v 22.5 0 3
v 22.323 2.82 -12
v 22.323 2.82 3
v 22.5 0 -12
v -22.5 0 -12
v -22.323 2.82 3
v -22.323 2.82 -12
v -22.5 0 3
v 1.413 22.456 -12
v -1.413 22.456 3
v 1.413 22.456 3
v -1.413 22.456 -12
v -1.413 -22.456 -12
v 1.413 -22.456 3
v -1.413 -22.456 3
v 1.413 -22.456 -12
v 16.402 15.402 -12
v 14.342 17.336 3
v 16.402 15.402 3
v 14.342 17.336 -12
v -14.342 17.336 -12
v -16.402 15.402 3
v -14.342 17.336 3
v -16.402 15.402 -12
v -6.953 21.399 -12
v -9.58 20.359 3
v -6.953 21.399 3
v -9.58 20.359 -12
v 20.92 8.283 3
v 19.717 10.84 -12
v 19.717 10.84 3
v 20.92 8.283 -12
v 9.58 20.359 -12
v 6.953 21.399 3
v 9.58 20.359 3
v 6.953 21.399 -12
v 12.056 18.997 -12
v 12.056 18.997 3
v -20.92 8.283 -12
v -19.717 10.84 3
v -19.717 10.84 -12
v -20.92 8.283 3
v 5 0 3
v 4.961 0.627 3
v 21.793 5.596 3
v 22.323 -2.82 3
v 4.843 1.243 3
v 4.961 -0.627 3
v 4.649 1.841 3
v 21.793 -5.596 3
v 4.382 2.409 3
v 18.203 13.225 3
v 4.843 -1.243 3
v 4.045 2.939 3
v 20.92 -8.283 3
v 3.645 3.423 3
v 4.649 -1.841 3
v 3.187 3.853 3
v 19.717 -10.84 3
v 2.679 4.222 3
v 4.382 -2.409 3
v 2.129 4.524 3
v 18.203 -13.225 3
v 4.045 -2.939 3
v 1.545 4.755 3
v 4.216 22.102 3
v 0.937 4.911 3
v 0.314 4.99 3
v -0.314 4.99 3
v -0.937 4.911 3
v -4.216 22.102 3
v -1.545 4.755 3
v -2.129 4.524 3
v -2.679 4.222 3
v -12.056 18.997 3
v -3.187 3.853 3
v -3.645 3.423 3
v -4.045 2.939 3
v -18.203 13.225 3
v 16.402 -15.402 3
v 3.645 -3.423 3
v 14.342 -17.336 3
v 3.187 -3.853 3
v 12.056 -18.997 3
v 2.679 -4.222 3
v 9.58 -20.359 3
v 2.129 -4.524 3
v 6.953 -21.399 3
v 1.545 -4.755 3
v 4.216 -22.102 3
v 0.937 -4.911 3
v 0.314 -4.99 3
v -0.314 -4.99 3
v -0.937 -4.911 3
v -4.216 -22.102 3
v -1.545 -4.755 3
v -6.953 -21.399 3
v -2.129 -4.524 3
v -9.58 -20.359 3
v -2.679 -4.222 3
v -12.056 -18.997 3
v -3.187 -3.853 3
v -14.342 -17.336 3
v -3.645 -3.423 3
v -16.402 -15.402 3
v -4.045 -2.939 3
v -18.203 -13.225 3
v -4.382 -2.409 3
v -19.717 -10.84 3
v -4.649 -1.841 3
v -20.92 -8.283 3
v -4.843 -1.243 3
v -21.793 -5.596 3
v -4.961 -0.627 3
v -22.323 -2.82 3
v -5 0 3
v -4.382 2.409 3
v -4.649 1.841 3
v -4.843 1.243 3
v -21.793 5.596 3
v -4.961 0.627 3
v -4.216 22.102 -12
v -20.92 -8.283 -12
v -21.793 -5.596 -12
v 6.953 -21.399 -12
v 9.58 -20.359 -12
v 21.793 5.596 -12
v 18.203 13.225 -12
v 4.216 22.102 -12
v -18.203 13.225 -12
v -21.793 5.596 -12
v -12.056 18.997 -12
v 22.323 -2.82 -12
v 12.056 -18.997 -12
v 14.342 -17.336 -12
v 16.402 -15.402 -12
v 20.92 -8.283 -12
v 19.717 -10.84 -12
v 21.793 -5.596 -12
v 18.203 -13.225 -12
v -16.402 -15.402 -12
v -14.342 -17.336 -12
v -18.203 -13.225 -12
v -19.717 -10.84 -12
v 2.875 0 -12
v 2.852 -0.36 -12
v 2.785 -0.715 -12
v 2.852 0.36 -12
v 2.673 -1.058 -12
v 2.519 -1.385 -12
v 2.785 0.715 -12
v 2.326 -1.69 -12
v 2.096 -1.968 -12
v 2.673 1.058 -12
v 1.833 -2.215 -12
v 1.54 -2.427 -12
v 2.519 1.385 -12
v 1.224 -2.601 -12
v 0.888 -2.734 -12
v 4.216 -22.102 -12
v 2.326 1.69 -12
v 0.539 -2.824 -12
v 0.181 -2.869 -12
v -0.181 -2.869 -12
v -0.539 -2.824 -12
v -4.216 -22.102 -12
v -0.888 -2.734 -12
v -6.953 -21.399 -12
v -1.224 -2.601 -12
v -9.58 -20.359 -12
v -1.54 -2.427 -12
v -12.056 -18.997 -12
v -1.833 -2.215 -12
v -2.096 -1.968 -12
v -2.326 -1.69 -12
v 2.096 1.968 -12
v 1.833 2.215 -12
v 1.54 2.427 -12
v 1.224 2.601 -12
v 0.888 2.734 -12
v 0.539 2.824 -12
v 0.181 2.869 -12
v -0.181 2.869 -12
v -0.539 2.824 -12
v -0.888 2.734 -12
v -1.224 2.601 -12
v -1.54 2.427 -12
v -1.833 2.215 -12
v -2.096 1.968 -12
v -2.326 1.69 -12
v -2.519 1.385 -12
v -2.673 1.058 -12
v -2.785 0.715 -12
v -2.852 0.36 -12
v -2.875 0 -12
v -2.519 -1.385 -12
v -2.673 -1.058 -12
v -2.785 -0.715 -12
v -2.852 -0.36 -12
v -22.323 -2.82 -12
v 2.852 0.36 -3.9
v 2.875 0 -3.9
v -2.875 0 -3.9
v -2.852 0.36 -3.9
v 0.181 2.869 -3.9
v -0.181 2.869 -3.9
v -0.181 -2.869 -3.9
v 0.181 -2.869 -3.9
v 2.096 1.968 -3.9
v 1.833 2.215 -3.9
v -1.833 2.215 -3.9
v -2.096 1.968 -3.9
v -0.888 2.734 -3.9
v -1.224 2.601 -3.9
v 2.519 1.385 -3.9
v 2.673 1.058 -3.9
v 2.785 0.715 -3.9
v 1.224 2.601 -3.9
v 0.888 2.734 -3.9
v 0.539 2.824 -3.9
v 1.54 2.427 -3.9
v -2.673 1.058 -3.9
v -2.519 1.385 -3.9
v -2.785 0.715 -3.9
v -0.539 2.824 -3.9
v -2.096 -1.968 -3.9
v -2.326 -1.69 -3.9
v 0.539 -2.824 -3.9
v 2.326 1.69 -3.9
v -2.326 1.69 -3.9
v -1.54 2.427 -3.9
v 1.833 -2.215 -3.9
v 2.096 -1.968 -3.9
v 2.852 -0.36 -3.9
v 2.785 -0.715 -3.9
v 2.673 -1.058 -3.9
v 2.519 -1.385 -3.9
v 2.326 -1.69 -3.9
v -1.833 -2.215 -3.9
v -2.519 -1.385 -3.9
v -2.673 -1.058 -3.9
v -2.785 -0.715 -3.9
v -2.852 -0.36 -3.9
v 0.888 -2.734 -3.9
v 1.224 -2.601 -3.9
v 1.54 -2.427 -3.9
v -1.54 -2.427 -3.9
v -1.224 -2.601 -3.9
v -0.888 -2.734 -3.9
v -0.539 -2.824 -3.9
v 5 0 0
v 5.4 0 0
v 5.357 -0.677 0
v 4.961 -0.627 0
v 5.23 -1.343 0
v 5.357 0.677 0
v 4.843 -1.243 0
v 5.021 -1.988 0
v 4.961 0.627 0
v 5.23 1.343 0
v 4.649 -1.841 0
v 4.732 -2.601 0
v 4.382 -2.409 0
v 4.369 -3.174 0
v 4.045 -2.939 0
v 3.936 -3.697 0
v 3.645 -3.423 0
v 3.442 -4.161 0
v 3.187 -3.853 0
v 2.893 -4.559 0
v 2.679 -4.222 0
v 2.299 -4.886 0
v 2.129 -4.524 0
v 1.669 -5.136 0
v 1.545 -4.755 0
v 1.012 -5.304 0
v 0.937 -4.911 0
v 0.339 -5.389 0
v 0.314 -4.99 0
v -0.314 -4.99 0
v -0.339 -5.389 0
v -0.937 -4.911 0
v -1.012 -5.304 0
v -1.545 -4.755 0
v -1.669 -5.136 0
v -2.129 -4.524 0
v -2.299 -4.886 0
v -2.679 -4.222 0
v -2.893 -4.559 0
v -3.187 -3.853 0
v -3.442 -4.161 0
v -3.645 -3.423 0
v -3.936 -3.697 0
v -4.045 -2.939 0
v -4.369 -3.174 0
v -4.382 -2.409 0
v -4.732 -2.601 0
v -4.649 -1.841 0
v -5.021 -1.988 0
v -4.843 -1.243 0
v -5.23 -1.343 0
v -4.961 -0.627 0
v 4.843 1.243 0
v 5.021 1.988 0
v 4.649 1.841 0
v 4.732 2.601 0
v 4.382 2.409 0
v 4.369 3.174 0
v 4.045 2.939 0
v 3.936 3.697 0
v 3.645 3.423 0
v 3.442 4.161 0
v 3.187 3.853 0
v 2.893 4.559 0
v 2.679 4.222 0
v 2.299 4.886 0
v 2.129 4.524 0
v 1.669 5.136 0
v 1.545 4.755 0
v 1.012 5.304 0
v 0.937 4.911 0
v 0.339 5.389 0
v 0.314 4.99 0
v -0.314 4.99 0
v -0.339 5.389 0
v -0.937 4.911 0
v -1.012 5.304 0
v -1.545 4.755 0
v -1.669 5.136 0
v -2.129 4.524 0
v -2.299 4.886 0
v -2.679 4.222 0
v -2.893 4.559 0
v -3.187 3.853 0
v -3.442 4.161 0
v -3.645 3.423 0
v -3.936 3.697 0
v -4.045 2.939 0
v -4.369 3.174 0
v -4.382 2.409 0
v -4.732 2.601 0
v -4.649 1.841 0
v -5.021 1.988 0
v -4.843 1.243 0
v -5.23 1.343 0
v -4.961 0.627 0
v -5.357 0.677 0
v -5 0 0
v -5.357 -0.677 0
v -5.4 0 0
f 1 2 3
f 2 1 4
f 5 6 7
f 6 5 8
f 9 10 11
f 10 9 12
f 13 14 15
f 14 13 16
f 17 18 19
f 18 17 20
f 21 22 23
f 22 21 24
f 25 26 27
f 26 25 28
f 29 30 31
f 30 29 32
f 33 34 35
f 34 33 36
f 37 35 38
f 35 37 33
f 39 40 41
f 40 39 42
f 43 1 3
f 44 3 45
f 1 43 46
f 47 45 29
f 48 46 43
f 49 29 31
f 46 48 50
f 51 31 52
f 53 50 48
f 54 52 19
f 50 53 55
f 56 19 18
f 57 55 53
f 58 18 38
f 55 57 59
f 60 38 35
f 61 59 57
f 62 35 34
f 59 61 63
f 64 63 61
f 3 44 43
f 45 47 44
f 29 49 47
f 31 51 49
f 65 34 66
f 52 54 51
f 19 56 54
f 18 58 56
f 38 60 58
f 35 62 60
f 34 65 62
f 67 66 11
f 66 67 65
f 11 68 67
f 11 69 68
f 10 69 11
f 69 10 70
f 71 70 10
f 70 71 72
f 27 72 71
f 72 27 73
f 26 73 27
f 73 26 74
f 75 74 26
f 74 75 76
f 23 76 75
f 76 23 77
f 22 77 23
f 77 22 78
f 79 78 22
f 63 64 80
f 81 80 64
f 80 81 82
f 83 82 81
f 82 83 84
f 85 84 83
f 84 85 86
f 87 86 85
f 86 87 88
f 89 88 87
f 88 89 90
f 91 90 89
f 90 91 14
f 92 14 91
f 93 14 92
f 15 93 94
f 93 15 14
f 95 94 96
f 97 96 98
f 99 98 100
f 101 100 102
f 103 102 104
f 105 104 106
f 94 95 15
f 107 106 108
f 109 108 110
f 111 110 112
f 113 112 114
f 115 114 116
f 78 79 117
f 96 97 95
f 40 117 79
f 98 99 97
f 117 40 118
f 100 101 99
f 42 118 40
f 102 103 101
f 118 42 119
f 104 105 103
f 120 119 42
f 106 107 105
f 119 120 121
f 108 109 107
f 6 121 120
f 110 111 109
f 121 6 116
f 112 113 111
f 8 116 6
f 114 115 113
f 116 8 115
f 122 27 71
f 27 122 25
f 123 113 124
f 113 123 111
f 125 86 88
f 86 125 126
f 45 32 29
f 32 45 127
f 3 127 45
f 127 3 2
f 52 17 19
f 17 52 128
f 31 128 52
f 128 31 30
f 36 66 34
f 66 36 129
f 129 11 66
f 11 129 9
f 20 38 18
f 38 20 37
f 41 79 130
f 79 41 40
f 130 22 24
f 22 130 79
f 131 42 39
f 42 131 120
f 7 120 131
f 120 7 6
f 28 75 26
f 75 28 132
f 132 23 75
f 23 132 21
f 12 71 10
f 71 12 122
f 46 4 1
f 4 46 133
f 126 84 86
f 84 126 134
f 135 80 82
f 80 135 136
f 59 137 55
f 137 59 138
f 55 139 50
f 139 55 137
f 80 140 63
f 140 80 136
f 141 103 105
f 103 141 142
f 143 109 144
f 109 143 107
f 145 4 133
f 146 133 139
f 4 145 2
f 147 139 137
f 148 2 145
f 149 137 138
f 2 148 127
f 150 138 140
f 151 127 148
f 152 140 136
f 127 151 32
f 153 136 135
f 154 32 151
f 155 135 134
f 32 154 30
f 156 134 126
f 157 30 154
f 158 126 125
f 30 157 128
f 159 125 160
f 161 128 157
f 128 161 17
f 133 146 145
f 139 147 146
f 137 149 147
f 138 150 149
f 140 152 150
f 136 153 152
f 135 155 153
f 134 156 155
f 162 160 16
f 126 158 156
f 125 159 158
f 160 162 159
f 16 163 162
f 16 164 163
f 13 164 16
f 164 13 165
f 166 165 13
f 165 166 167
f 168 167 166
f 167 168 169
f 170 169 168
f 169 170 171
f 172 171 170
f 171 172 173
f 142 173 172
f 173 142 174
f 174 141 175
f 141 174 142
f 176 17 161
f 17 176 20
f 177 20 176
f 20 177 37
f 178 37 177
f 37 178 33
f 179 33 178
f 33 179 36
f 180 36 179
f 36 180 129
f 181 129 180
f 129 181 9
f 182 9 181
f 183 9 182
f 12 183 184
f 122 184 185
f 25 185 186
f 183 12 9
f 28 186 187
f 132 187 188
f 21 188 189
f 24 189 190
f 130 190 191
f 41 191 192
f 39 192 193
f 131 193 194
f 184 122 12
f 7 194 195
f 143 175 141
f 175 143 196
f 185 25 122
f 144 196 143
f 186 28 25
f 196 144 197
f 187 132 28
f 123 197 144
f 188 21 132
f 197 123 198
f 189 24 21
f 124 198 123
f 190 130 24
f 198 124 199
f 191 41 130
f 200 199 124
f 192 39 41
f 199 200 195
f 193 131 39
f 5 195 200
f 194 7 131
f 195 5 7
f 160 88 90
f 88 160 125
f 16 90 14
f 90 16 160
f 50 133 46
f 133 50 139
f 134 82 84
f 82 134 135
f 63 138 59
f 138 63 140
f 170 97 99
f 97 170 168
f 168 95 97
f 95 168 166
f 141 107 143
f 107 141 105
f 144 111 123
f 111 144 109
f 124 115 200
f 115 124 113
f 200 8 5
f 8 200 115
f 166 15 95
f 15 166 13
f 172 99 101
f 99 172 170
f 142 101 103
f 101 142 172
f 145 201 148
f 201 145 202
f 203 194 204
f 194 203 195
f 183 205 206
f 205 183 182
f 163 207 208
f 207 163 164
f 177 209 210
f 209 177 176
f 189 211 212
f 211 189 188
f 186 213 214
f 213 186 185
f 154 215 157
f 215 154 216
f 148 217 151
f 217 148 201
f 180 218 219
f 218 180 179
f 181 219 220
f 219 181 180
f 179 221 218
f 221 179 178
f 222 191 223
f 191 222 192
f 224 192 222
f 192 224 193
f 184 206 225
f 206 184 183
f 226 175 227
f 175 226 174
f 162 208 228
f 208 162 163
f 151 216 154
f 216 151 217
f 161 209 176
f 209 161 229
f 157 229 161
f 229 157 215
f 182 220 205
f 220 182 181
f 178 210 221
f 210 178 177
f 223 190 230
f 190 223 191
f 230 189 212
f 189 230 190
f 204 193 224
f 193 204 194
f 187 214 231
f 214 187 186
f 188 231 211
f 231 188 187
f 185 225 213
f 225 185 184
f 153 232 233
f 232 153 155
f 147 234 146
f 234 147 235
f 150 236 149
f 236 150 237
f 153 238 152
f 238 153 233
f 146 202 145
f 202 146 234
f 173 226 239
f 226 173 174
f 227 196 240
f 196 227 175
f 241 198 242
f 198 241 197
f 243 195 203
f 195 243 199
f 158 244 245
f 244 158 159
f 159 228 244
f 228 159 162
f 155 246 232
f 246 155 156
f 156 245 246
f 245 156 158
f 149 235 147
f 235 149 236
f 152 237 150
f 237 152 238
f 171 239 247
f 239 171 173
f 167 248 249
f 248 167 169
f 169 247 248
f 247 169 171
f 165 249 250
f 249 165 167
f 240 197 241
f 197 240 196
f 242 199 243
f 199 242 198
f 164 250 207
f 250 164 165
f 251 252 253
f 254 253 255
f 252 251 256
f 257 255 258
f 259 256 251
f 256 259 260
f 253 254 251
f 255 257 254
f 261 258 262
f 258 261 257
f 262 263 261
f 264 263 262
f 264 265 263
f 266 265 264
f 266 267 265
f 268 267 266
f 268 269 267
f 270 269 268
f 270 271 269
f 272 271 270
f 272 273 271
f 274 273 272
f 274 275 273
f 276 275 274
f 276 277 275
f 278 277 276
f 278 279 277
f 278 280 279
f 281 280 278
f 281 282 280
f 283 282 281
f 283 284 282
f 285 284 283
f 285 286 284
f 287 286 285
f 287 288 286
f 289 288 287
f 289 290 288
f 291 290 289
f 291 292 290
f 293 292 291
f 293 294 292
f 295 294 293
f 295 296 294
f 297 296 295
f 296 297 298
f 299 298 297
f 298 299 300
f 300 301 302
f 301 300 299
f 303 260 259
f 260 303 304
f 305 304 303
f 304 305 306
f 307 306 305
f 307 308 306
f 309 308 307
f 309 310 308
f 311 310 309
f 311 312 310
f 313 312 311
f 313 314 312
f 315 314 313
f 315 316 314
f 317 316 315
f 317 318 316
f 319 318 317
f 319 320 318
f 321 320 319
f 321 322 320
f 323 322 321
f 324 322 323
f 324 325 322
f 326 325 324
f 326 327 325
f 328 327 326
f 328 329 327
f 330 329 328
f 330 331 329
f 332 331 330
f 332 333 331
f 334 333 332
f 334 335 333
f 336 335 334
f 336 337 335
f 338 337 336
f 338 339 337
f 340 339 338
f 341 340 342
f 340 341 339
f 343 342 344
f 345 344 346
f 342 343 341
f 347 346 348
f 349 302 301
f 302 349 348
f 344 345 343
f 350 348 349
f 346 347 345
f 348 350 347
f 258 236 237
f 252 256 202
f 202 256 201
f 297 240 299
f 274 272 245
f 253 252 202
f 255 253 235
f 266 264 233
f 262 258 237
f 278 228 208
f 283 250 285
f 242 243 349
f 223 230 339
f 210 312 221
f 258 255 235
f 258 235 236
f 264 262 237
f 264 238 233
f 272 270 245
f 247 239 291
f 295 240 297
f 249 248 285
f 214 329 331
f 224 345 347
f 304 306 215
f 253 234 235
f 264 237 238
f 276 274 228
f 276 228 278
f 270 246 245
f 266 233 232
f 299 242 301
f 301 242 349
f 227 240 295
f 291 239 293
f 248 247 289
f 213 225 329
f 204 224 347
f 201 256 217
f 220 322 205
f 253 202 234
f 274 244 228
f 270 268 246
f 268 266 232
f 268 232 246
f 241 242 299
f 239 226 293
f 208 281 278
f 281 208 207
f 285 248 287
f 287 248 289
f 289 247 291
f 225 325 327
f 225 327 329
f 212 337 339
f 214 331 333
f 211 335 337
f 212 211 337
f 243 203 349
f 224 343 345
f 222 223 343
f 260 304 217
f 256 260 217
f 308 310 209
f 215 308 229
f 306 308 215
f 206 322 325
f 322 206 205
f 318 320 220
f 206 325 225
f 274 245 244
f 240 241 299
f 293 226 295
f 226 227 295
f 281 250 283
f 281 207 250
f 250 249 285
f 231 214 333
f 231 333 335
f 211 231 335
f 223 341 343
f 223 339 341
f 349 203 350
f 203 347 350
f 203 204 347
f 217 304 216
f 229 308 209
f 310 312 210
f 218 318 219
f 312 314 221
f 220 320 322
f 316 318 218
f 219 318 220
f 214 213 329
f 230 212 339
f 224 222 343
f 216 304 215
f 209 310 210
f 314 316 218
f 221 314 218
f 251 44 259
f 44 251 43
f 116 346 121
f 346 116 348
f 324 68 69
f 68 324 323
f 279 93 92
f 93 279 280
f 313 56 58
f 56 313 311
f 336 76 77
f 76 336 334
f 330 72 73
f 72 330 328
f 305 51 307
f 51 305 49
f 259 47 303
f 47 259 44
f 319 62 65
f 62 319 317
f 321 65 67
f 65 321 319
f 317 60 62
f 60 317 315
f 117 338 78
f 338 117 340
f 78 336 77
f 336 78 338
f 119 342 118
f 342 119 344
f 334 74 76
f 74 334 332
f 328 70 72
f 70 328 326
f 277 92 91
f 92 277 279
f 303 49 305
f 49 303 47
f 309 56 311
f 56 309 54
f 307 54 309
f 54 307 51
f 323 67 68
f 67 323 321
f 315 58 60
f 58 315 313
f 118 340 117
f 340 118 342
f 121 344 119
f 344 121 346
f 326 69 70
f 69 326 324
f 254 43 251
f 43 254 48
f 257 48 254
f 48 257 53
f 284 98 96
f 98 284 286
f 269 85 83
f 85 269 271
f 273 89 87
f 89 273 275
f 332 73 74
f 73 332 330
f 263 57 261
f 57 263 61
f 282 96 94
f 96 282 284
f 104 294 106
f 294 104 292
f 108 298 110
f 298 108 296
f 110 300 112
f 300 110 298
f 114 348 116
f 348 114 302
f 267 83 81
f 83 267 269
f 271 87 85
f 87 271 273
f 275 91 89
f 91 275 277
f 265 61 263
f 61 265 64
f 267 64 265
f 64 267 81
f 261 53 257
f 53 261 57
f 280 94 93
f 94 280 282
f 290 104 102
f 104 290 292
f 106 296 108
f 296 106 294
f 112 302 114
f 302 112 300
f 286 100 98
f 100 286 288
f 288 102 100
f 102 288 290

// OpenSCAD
$fn = 50;

difference() {
	union() {
		translate(v = [0, 0, -12.0]) {
			cylinder(h = 15, r = 22.5);
		}
		#translate(v = [0, 0, -15.0]) {
			cylinder(h = 15, r = 2.875);
		}
	}
	union() {
		translate(v = [0, 0, 0]) {
			rotate(a = [0, 0, 0]) {
				difference() {
					union() {
						translate(v = [0, 0, -15.0]) {
							cylinder(h = 15, r = 2.6);
						}
						translate(v = [0, 0, -3.9]) {
							cylinder(h = 3.9, r1 = 2.875, r2 = 5.4);
						}
						translate(v = [0, 0, -15.0]) {
							cylinder(h = 15, r = 2.875);
						}
						translate(v = [0, 0, -15.0]) {
							cylinder(h = 15, r = 2.6);
						}
					}
					union();
				}
			}
		}
		#cylinder(h = 3, r = 5.0);
	}
}
